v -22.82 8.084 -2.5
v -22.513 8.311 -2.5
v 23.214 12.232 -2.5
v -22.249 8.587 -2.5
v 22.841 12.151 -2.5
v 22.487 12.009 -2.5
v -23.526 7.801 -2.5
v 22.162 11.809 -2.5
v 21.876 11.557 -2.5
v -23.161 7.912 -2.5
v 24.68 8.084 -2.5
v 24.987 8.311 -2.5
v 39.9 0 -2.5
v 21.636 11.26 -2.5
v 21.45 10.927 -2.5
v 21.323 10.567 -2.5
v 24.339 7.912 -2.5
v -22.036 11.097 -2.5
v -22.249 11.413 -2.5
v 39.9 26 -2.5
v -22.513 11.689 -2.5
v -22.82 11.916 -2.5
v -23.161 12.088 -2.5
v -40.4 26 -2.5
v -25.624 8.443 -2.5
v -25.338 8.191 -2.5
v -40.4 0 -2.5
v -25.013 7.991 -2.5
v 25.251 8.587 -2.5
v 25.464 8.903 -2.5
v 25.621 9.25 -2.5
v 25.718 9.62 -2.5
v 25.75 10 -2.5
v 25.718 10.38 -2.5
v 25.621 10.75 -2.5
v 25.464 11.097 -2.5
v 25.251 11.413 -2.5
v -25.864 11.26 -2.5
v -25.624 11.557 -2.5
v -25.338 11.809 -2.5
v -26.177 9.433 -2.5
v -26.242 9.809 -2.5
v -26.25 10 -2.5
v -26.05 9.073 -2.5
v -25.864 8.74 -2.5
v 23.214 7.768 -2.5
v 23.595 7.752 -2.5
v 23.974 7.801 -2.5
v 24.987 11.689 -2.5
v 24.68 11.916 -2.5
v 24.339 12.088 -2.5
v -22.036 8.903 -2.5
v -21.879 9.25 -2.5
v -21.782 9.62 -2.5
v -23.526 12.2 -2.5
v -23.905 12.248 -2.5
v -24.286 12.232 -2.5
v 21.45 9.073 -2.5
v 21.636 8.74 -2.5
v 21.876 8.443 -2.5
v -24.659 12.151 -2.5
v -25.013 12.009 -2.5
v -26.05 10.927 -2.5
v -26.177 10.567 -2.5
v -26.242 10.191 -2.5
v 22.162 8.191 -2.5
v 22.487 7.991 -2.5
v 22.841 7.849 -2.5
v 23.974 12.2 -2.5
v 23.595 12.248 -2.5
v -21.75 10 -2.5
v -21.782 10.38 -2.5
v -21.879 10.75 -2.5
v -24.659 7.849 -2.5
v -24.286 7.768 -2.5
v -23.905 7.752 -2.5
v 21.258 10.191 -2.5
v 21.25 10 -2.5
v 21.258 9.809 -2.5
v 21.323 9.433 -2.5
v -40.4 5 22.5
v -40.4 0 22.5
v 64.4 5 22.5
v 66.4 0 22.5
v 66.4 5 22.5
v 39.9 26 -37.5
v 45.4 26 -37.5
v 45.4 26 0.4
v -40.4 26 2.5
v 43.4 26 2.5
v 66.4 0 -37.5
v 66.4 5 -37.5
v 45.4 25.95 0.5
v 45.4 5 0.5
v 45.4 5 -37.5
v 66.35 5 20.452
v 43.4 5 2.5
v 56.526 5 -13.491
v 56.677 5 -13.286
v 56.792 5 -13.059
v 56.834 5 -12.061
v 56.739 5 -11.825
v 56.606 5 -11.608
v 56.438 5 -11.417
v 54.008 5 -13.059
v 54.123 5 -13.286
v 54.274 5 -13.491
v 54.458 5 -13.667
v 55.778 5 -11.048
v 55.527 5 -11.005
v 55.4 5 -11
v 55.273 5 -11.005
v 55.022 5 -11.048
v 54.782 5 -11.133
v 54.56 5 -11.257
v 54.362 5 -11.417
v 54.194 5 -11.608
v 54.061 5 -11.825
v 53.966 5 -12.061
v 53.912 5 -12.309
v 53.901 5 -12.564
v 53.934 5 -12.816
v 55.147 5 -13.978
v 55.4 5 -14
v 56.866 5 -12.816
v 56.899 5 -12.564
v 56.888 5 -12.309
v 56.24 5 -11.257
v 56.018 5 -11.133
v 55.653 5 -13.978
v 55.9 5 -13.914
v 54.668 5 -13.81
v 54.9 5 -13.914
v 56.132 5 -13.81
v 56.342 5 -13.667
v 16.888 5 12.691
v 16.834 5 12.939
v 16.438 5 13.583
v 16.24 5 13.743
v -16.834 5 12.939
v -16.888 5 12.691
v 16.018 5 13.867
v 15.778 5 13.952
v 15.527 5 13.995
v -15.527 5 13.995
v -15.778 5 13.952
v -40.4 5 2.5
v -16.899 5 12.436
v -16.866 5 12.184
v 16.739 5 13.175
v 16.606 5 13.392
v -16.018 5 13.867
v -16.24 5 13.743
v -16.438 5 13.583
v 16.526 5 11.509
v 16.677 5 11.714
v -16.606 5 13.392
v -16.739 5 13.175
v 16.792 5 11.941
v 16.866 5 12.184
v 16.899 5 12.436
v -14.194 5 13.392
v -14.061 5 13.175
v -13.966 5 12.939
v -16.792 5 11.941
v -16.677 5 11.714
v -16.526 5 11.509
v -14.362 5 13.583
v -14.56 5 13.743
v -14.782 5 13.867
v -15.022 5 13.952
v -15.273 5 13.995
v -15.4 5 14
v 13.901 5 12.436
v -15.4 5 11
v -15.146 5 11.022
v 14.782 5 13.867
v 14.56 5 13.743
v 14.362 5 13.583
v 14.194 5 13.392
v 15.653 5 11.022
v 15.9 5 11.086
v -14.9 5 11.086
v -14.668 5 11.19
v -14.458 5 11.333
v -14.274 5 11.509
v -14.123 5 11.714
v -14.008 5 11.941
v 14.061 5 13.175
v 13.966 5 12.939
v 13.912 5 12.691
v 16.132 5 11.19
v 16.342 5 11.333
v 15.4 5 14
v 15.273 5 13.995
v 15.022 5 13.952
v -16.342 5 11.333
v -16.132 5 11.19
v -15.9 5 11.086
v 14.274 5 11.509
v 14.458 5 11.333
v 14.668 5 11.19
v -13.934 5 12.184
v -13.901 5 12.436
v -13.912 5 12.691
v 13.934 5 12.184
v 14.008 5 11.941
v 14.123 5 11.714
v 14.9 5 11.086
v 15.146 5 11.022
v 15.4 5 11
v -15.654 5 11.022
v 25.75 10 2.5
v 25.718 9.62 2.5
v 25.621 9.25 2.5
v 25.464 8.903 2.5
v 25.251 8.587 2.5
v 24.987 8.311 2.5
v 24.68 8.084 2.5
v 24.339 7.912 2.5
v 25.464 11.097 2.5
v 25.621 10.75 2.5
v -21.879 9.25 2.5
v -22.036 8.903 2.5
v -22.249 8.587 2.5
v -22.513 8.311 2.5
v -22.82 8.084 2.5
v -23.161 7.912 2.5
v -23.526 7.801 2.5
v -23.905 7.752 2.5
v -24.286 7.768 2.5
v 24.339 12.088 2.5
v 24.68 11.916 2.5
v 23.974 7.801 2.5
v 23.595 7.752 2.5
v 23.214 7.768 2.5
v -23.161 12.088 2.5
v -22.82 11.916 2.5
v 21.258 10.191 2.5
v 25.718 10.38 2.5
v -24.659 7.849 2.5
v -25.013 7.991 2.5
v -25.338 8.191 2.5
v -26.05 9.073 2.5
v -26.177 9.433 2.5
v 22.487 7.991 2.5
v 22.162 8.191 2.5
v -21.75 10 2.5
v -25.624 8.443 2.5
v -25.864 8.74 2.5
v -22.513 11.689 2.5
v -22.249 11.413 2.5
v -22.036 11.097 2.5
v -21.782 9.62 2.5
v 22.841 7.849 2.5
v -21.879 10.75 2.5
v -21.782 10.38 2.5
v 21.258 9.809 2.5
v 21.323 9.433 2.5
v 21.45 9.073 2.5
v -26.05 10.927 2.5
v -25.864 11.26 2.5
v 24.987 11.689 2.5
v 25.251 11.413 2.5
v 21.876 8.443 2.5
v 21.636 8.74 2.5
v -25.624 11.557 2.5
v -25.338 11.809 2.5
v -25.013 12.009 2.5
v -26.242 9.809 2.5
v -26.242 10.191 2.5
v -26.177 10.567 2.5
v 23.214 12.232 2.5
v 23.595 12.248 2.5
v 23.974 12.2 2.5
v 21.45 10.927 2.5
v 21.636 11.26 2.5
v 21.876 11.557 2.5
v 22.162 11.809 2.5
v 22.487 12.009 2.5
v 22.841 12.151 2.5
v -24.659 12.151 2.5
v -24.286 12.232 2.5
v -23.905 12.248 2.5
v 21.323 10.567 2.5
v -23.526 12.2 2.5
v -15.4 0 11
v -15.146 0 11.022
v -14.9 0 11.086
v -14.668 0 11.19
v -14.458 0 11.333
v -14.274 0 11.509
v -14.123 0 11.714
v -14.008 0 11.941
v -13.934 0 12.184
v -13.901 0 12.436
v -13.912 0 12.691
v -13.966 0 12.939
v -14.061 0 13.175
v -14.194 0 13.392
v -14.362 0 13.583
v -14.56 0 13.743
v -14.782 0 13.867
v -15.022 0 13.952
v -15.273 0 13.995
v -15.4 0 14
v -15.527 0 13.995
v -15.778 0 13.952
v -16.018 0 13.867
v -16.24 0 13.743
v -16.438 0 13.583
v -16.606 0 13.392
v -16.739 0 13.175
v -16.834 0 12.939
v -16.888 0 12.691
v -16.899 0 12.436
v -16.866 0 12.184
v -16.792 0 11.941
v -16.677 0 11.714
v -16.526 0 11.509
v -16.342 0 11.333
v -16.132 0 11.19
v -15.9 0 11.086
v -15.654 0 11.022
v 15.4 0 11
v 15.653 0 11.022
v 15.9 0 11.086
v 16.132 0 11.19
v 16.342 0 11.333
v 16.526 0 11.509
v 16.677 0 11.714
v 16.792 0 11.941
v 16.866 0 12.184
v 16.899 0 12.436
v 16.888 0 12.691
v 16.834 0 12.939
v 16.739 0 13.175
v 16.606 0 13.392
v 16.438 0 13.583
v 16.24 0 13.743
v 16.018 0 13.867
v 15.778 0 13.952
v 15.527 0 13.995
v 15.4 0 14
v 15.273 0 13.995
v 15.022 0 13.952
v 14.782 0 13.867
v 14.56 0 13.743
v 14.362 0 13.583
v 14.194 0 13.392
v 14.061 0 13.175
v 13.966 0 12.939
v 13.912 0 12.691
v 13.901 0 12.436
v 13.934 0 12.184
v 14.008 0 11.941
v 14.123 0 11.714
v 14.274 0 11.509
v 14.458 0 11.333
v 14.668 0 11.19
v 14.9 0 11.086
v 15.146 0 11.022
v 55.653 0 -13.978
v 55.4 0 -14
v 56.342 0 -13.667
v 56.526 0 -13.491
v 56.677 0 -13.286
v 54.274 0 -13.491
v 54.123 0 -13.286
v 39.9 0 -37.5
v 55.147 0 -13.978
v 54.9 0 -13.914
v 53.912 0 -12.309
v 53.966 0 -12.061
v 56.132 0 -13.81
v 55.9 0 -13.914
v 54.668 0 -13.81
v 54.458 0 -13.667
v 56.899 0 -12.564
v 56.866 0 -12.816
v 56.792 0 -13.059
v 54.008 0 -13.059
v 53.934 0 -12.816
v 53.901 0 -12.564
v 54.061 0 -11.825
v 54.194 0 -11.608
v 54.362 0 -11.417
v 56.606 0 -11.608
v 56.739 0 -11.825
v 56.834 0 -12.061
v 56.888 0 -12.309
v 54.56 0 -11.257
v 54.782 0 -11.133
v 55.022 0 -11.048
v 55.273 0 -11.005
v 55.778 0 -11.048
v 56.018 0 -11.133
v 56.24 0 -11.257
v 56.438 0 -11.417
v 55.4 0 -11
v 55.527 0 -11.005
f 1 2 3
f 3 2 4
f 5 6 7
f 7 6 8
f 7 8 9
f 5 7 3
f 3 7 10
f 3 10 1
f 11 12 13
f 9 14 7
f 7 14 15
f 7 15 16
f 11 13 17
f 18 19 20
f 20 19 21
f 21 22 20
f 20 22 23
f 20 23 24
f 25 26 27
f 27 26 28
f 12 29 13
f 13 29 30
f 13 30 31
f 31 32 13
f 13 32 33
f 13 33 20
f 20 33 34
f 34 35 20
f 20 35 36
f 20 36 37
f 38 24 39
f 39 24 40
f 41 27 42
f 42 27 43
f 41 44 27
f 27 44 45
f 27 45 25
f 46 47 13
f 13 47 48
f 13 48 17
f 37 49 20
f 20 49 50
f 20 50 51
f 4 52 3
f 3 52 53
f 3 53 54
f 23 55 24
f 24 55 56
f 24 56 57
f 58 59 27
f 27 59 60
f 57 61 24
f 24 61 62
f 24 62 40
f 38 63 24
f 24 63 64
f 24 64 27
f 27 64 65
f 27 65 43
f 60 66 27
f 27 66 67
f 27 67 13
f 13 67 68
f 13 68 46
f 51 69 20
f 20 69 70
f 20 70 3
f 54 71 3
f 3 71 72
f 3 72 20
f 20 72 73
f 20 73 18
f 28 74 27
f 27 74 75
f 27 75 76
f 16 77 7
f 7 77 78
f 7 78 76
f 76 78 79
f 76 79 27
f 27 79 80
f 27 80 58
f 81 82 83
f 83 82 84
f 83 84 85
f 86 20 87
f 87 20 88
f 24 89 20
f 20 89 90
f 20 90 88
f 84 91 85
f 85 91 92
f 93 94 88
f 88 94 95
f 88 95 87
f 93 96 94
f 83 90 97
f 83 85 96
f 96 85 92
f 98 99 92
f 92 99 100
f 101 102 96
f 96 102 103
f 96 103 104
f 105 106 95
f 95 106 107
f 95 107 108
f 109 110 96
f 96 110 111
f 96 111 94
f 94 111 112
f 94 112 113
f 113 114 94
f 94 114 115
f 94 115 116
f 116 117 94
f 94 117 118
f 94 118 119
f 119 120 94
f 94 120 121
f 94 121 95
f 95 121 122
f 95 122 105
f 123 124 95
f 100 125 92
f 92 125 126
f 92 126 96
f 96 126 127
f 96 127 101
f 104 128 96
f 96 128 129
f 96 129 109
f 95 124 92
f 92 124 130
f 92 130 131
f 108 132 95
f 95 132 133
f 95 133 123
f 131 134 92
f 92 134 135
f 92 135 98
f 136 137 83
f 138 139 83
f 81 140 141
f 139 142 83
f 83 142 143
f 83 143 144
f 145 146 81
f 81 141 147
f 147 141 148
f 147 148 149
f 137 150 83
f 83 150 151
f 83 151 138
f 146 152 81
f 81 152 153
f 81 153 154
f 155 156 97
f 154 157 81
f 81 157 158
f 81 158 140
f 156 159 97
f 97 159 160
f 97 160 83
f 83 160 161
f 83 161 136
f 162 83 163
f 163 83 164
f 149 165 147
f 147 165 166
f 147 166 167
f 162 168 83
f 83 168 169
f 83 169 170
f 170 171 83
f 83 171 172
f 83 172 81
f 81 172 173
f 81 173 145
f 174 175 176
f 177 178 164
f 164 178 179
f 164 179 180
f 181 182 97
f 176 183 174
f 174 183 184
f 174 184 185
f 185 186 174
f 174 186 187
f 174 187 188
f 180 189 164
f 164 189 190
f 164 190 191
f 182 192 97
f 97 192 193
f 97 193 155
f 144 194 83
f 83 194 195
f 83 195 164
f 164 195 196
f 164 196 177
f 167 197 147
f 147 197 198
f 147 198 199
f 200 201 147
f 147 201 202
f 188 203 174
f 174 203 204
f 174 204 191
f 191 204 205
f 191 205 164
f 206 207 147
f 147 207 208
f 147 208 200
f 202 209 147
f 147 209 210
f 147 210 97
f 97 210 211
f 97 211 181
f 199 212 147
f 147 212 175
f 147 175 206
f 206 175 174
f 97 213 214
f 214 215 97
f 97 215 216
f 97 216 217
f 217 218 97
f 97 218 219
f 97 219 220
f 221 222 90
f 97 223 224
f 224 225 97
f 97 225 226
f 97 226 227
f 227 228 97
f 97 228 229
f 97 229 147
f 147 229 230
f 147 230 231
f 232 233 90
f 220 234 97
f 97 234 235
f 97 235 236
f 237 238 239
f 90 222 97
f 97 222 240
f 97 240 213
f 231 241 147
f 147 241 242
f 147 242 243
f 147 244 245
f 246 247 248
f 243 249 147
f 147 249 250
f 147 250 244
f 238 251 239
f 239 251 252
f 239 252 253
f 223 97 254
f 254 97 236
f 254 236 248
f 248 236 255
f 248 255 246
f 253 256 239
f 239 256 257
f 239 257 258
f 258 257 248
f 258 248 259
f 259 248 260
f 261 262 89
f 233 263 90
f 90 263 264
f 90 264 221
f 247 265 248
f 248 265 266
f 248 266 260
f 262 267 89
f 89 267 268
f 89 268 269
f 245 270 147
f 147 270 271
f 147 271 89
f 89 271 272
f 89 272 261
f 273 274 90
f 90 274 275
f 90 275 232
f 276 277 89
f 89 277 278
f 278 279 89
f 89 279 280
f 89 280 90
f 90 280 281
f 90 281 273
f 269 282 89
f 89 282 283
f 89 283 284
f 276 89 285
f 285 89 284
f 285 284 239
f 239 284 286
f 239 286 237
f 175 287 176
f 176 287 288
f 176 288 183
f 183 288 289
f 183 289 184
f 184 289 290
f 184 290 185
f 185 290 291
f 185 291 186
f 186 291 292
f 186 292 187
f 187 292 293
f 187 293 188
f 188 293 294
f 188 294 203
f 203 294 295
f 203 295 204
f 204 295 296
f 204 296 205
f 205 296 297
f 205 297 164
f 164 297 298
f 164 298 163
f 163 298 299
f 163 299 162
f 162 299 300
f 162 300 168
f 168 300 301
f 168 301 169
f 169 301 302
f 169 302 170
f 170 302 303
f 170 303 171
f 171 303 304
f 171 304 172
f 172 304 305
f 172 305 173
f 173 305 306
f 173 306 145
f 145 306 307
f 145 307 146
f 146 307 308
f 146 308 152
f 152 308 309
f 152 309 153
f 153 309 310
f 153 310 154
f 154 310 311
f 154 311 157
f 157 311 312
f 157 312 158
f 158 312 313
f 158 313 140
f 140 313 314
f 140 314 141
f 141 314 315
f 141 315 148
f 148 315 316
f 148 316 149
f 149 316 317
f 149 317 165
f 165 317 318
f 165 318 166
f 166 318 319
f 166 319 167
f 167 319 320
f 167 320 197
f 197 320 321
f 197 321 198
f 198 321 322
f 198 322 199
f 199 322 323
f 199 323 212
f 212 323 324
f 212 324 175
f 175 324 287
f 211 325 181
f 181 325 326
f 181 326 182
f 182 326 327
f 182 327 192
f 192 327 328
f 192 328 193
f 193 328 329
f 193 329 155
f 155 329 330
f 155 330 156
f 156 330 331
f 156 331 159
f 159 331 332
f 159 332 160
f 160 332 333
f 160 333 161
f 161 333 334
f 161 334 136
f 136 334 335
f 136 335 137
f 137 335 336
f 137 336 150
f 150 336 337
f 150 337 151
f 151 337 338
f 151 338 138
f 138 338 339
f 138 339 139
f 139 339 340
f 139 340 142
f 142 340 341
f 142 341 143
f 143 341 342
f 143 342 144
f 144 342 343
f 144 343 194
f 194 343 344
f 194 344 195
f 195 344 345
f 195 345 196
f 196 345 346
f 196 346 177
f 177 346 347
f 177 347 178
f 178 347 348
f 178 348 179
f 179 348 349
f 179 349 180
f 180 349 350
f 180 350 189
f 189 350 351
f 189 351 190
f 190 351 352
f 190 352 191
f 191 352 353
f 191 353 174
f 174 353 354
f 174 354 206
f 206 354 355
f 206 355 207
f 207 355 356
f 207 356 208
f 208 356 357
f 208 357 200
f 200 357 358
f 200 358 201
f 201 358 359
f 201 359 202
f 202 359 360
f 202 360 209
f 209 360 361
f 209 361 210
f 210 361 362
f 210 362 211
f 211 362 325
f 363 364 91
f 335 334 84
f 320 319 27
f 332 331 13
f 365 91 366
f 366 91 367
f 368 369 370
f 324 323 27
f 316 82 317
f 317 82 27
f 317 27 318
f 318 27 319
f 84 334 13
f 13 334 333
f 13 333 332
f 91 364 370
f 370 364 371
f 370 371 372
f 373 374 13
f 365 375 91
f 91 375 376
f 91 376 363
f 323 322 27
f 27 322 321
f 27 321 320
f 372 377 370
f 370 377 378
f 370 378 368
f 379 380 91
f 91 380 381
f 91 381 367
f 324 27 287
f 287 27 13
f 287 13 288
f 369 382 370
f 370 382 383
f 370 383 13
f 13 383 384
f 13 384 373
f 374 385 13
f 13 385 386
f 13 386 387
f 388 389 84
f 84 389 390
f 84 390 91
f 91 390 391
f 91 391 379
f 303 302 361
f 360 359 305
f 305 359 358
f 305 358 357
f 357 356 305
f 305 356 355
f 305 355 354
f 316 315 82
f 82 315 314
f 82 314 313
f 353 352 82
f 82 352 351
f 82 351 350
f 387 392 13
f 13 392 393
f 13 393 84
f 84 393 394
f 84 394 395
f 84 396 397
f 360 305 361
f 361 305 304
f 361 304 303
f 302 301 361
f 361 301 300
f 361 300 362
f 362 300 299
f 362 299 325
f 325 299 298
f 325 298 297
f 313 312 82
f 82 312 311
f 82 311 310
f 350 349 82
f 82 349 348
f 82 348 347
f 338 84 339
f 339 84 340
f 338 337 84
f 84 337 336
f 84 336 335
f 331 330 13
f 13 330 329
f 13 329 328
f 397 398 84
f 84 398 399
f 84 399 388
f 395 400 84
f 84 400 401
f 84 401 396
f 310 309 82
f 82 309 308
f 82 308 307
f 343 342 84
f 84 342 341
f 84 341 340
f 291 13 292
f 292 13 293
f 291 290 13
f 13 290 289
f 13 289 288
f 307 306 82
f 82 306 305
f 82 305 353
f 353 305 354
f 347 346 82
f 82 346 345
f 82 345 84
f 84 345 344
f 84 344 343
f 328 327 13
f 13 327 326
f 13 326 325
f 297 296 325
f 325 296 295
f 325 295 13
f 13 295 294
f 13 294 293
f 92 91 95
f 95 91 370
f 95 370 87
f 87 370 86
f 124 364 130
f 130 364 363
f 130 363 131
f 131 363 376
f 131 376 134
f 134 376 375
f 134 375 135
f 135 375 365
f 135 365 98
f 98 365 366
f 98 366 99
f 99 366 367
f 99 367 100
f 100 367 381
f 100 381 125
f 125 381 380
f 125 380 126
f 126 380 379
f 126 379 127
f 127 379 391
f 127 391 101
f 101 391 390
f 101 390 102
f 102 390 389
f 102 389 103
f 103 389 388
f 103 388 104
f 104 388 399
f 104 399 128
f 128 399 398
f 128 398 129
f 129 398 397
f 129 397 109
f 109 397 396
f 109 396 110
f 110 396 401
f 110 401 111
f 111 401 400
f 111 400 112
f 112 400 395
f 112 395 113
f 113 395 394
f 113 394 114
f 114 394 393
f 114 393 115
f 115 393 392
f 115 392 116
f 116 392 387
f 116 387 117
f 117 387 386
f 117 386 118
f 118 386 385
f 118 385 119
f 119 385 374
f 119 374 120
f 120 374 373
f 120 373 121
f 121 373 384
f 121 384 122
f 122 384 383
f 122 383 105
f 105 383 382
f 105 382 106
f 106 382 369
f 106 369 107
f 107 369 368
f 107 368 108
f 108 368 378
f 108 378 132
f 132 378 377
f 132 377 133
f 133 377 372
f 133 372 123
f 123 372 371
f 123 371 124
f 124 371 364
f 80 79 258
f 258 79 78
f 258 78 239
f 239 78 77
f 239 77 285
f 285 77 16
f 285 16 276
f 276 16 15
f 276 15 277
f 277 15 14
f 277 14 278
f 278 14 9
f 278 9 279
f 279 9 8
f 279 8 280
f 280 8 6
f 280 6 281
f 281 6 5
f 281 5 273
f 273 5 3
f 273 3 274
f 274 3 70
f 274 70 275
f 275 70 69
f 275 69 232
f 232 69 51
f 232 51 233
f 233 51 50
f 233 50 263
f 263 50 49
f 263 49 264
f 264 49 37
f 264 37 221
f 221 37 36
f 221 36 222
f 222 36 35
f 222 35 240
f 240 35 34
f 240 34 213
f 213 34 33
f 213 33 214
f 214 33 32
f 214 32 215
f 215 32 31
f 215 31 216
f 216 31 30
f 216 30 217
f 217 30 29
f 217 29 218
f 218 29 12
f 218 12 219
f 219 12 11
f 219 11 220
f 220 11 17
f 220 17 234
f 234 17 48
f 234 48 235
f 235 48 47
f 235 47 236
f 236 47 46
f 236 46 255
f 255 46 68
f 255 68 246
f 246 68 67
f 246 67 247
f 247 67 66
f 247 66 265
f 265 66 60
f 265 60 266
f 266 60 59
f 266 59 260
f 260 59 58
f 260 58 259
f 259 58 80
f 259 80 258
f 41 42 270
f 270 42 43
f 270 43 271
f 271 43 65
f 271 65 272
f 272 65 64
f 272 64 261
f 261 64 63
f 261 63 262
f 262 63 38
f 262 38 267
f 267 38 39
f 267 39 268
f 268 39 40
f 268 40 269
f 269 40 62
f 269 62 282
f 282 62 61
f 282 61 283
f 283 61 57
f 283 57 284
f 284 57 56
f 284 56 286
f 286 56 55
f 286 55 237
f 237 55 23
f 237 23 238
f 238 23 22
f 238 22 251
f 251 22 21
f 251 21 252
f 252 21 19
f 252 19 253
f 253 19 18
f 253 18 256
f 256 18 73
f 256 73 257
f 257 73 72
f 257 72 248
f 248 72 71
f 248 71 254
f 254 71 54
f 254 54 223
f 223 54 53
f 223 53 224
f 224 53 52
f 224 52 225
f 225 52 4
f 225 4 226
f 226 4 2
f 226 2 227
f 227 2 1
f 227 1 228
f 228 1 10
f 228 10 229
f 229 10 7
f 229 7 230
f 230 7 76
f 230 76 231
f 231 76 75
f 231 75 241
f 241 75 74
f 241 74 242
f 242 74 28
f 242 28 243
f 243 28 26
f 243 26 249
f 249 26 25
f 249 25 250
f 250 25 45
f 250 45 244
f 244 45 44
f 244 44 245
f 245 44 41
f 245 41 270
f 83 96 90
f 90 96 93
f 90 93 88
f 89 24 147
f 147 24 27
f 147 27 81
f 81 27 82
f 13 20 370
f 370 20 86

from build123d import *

# Parameters (mm, degrees)
CROQUIS1_W              = 80.8
CROQUIS1_H              = 25
CROQUIS1_R              = 1.5
SALIENTE_EXTRUIR1_DEPTH = 5
CROQUIS1_3_W            = 80.8
CROQUIS1_3_H            = 5
SALIENTE_EXTRUIR2_DEPTH = 26
CROQUIS1_4_W            = 26
CROQUIS1_4_H            = 60
CROQUIS1_4_R            = 1.5
SALIENTE_EXTRUIR3_DEPTH = 5
CROQUIS1_5_W            = 5
CROQUIS1_5_H            = 40
SALIENTE_EXTRUIR4_DEPTH = 26
CROQUIS3_R              = 2.25
CORTAR_EXTRUIR1_DEPTH   = 26
SALIENTE_EXTRUIR5_DEPTH = 21
CORTAR_EXTRUIR2_DEPTH   = 21
CROQUIS6_W              = 37.983880197
CROQUIS6_H              = 26
CORTAR_EXTRUIR3_DEPTH   = 120
CROQUIS7_W              = 35
CROQUIS7_H              = 26
SALIENTE_EXTRUIR6_DEPTH = 0.5


with BuildPart() as part:
    # Croquis1 → Saliente-Extruir1 (new body)
    with BuildSketch(Plane(origin=(0, 0, 0), x_dir=(1, 0, 0), z_dir=(0, 1, 0))):
        with Locations((0, -10)):
            Rectangle(CROQUIS1_W, CROQUIS1_H)
        with Locations((15.4, -12.5)):
            Circle(CROQUIS1_R, mode=Mode.SUBTRACT)
        with Locations((-15.4, -12.5)):
            Circle(CROQUIS1_R, mode=Mode.SUBTRACT)
    extrude(amount=SALIENTE_EXTRUIR1_DEPTH)

    # Croquis1<3> → Saliente-Extruir2 (add)
    with BuildSketch(Plane(origin=(0, 0, 0), x_dir=(1, 0, 0), z_dir=(0, 1, 0))):
        Rectangle(CROQUIS1_3_W, CROQUIS1_3_H)
    extrude(amount=SALIENTE_EXTRUIR2_DEPTH)

    # Croquis1<4> → Saliente-Extruir3 (add)
    # profile 1 of 2: a face of its own
    with BuildSketch(Plane(origin=(0, 0, 0), x_dir=(1, 0, 0), z_dir=(0, 1, 0))):
        with Locations((-53.4, 7.5)):
            Rectangle(CROQUIS1_4_W, CROQUIS1_4_H)
        with Locations((-55.4, 12.5)):
            Circle(CROQUIS1_4_R, mode=Mode.SUBTRACT)
    # profile 2 of 2: a face of its own
    with BuildSketch(Plane(origin=(0, 0, 0), x_dir=(1, 0, 0), z_dir=(0, 1, 0))):
        with Locations((53.4, 7.5)):
            Rectangle(CROQUIS1_4_W, CROQUIS1_4_H)
        with Locations((55.4, 12.5)):
            Circle(CROQUIS1_4_R, mode=Mode.SUBTRACT)
    extrude(amount=SALIENTE_EXTRUIR3_DEPTH)

    # Croquis1<5> → Saliente-Extruir4 (add)
    with BuildSketch(Plane(origin=(0, 0, 0), x_dir=(1, 0, 0), z_dir=(0, 1, 0))):
        with Locations((-42.9, 17.5)):
            Rectangle(CROQUIS1_5_W, CROQUIS1_5_H)
        with Locations((42.9, 17.5)):
            Rectangle(CROQUIS1_5_W, CROQUIS1_5_H)
    extrude(amount=SALIENTE_EXTRUIR4_DEPTH)

    # Croquis3 → Cortar-Extruir1 (cut)
    with BuildSketch(Plane.XY.offset(2.5)):
        with Locations((-24, 10)):
            Circle(CROQUIS3_R)
        with Locations((23.5, 10)):
            Circle(CROQUIS3_R)
    extrude(amount=-CORTAR_EXTRUIR1_DEPTH, mode=Mode.SUBTRACT)

    # Croquis4 → Saliente-Extruir5 (add)
    with BuildSketch(Plane(origin=(0, 5, 0), x_dir=(1, 0, 0), z_dir=(0, 1, 0))):
        Polygon((-45.4, -0.5), (-45.4, -2.5), (-43.4, -2.5), (-64.4, -22.5), (-66.4, -22.5), (-66.4, -20.5), align=None)
    saliente_extruir5 = extrude(amount=SALIENTE_EXTRUIR5_DEPTH)

    # Croquis5 → Cortar-Extruir2 (cut)
    with BuildSketch(Plane(origin=(-19.393579073, 0, -20.363258026), x_dir=(0.7241379310344827, 0, -0.6896551724137933), z_dir=(0.6896551724137933, 0, 0.7241379310344827))):
        Polygon((-62.151724138, 5), (-33.151724138, 26), (-26.486949689, 30.82621598), (-82.759555013, 33.403814281), (-84.060607683, 5), align=None)
    cortar_extruir2 = extrude(amount=-CORTAR_EXTRUIR2_DEPTH, mode=Mode.SUBTRACT)

    # Simetría1: Saliente-Extruir5 across plane
    add(saliente_extruir5.mirror(Plane(origin=(0, 0, 0), x_dir=(0, 0, 1), z_dir=(1, 0, 0))))

    # Simetría2: Cortar-Extruir2 across plane
    add(cortar_extruir2.mirror(Plane(origin=(0, 0, 0), x_dir=(0, 0, 1), z_dir=(1, 0, 0))), mode=Mode.SUBTRACT)

    # Croquis6 → Cortar-Extruir3 (cut)
    with BuildSketch(Plane(origin=(0, 0, -37.5), x_dir=(-1, 0, 0), z_dir=(0, 0, -1))):
        with Locations((59.391940099, 13)):
            Rectangle(CROQUIS6_W, CROQUIS6_H)
    extrude(amount=-CORTAR_EXTRUIR3_DEPTH, mode=Mode.SUBTRACT)

    # Croquis7 → Saliente-Extruir6 (add)
    with BuildSketch(Plane.ZY.offset(-40.4)):
        with Locations((-20, 13)):
            Rectangle(CROQUIS7_W, CROQUIS7_H)
    extrude(amount=SALIENTE_EXTRUIR6_DEPTH)


solid = part.part
